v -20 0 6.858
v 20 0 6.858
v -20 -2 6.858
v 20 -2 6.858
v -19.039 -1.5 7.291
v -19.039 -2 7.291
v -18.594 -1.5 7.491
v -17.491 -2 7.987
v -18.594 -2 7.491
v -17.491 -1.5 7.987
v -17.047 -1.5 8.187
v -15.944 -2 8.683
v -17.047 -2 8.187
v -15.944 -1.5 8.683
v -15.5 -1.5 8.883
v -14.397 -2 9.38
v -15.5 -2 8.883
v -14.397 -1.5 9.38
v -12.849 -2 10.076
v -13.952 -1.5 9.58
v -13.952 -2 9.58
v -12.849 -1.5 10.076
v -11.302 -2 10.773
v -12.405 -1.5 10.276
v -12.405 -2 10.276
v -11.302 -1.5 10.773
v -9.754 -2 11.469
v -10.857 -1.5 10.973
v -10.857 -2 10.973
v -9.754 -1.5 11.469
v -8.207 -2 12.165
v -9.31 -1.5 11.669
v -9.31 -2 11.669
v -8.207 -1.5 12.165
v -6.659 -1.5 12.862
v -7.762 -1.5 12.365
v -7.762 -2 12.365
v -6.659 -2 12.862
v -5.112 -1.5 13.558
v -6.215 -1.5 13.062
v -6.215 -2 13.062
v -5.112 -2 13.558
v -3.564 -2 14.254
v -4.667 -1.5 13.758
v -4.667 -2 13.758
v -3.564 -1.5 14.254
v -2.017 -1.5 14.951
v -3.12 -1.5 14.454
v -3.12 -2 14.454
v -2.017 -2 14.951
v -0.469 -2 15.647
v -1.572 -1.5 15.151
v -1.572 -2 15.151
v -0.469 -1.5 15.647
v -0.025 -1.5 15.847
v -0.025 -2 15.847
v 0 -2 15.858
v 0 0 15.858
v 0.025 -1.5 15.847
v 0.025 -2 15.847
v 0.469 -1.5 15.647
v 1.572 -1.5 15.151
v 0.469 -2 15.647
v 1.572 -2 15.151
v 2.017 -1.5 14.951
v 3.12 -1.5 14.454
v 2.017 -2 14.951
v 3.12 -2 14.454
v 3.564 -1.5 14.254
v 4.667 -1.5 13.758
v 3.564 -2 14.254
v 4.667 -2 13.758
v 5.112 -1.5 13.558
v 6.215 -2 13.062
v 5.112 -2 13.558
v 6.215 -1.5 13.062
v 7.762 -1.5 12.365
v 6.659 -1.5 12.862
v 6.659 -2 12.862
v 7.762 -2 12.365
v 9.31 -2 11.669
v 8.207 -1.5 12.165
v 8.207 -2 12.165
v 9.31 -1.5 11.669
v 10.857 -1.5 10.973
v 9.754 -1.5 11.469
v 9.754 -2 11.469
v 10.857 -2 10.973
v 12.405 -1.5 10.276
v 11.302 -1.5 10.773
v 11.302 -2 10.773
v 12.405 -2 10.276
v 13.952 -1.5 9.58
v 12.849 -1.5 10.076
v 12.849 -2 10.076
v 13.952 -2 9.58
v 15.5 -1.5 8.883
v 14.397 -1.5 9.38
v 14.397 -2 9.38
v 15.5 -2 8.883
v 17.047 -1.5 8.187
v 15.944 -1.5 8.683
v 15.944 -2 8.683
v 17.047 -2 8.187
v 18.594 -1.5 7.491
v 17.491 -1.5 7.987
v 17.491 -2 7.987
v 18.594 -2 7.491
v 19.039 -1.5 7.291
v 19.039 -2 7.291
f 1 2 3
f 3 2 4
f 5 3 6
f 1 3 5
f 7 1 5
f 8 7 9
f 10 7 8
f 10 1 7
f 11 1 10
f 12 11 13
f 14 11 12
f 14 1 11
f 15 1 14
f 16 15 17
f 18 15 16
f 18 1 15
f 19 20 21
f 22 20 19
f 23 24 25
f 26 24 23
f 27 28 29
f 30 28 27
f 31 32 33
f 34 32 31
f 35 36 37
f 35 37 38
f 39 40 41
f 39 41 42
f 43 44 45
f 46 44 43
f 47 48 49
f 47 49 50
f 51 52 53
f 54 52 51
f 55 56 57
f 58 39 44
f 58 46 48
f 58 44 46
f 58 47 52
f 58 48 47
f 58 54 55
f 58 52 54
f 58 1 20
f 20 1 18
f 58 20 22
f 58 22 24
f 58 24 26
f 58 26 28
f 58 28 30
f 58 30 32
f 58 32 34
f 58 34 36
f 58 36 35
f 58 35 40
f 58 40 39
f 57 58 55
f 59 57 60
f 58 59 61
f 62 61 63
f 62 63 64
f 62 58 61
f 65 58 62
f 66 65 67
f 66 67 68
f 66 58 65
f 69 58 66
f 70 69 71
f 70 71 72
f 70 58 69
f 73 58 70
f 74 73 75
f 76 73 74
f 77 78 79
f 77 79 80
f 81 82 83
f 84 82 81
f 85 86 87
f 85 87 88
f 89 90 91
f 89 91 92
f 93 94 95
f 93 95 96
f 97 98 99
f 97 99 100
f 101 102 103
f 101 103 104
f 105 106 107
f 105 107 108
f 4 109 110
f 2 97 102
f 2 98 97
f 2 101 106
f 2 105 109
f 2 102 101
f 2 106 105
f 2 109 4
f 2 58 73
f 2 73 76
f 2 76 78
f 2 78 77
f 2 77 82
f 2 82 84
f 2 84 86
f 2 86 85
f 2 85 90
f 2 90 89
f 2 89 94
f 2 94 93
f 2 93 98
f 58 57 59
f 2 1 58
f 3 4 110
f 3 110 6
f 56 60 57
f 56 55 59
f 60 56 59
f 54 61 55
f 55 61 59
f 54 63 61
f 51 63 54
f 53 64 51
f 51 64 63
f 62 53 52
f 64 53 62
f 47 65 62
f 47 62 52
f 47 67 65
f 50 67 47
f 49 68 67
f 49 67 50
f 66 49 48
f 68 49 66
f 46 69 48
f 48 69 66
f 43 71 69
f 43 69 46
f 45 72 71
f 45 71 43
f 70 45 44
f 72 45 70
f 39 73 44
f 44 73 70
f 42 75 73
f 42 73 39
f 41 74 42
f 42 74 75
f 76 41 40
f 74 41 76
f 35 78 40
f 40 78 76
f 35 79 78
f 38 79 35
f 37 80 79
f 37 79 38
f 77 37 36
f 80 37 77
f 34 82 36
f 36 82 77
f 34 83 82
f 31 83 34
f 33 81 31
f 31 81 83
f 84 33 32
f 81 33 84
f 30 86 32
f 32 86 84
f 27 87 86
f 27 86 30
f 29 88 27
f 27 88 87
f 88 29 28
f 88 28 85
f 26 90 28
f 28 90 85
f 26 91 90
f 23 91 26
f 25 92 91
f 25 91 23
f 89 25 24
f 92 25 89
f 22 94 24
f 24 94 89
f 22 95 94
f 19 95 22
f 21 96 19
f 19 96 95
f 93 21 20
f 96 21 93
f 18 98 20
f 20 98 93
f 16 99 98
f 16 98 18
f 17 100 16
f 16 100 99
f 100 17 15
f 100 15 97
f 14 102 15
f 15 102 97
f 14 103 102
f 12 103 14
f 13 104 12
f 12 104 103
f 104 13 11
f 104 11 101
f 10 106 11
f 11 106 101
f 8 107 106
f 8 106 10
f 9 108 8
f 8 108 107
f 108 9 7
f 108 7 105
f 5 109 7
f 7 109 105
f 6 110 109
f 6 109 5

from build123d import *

# Parameters (mm, degrees)
PAD_DEPTH    = 2
SKETCH001_W  = 41.942294
SKETCH001_H  = 0.2
POCKET_DEPTH = 0.5


with BuildPart() as part:
    # Sketch → Pad (new body)
    with BuildSketch(Plane.XZ):
        Polygon((-20, 6.85827), (20, 6.85827), (0, 15.85827), align=None)
    extrude(amount=PAD_DEPTH)

    # Sketch001 (on Face5 of Pad) → Pocket (cut)
    with BuildSketch(Plane.XZ.offset(2)):
        with Locations((0.24899, 7.390751)):
            Rectangle(SKETCH001_W, SKETCH001_H)
        with Locations((0.253757, 8.087106)):
            Rectangle(SKETCH001_W, SKETCH001_H)
        with Locations((0.258524, 8.783461)):
            Rectangle(SKETCH001_W, SKETCH001_H)
        with Locations((0.263291, 9.479816)):
            Rectangle(SKETCH001_W, SKETCH001_H)
        with Locations((0.268058, 10.176171)):
            Rectangle(SKETCH001_W, SKETCH001_H)
        with Locations((0.272825, 10.872526)):
            Rectangle(SKETCH001_W, SKETCH001_H)
        with Locations((0.277592, 11.568881)):
            Rectangle(SKETCH001_W, SKETCH001_H)
        with Locations((0.282359, 12.265236)):
            Rectangle(SKETCH001_W, SKETCH001_H)
        with Locations((0.287126, 12.961591)):
            Rectangle(SKETCH001_W, SKETCH001_H)
        with Locations((0.291893, 13.657946)):
            Rectangle(SKETCH001_W, SKETCH001_H)
        with Locations((0.29666, 14.354301)):
            Rectangle(SKETCH001_W, SKETCH001_H)
        with Locations((0.301427, 15.050656)):
            Rectangle(SKETCH001_W, SKETCH001_H)
        with Locations((0.306194, 15.747011)):
            Rectangle(SKETCH001_W, SKETCH001_H)
    extrude(amount=-POCKET_DEPTH, mode=Mode.SUBTRACT)


solid = part.part
